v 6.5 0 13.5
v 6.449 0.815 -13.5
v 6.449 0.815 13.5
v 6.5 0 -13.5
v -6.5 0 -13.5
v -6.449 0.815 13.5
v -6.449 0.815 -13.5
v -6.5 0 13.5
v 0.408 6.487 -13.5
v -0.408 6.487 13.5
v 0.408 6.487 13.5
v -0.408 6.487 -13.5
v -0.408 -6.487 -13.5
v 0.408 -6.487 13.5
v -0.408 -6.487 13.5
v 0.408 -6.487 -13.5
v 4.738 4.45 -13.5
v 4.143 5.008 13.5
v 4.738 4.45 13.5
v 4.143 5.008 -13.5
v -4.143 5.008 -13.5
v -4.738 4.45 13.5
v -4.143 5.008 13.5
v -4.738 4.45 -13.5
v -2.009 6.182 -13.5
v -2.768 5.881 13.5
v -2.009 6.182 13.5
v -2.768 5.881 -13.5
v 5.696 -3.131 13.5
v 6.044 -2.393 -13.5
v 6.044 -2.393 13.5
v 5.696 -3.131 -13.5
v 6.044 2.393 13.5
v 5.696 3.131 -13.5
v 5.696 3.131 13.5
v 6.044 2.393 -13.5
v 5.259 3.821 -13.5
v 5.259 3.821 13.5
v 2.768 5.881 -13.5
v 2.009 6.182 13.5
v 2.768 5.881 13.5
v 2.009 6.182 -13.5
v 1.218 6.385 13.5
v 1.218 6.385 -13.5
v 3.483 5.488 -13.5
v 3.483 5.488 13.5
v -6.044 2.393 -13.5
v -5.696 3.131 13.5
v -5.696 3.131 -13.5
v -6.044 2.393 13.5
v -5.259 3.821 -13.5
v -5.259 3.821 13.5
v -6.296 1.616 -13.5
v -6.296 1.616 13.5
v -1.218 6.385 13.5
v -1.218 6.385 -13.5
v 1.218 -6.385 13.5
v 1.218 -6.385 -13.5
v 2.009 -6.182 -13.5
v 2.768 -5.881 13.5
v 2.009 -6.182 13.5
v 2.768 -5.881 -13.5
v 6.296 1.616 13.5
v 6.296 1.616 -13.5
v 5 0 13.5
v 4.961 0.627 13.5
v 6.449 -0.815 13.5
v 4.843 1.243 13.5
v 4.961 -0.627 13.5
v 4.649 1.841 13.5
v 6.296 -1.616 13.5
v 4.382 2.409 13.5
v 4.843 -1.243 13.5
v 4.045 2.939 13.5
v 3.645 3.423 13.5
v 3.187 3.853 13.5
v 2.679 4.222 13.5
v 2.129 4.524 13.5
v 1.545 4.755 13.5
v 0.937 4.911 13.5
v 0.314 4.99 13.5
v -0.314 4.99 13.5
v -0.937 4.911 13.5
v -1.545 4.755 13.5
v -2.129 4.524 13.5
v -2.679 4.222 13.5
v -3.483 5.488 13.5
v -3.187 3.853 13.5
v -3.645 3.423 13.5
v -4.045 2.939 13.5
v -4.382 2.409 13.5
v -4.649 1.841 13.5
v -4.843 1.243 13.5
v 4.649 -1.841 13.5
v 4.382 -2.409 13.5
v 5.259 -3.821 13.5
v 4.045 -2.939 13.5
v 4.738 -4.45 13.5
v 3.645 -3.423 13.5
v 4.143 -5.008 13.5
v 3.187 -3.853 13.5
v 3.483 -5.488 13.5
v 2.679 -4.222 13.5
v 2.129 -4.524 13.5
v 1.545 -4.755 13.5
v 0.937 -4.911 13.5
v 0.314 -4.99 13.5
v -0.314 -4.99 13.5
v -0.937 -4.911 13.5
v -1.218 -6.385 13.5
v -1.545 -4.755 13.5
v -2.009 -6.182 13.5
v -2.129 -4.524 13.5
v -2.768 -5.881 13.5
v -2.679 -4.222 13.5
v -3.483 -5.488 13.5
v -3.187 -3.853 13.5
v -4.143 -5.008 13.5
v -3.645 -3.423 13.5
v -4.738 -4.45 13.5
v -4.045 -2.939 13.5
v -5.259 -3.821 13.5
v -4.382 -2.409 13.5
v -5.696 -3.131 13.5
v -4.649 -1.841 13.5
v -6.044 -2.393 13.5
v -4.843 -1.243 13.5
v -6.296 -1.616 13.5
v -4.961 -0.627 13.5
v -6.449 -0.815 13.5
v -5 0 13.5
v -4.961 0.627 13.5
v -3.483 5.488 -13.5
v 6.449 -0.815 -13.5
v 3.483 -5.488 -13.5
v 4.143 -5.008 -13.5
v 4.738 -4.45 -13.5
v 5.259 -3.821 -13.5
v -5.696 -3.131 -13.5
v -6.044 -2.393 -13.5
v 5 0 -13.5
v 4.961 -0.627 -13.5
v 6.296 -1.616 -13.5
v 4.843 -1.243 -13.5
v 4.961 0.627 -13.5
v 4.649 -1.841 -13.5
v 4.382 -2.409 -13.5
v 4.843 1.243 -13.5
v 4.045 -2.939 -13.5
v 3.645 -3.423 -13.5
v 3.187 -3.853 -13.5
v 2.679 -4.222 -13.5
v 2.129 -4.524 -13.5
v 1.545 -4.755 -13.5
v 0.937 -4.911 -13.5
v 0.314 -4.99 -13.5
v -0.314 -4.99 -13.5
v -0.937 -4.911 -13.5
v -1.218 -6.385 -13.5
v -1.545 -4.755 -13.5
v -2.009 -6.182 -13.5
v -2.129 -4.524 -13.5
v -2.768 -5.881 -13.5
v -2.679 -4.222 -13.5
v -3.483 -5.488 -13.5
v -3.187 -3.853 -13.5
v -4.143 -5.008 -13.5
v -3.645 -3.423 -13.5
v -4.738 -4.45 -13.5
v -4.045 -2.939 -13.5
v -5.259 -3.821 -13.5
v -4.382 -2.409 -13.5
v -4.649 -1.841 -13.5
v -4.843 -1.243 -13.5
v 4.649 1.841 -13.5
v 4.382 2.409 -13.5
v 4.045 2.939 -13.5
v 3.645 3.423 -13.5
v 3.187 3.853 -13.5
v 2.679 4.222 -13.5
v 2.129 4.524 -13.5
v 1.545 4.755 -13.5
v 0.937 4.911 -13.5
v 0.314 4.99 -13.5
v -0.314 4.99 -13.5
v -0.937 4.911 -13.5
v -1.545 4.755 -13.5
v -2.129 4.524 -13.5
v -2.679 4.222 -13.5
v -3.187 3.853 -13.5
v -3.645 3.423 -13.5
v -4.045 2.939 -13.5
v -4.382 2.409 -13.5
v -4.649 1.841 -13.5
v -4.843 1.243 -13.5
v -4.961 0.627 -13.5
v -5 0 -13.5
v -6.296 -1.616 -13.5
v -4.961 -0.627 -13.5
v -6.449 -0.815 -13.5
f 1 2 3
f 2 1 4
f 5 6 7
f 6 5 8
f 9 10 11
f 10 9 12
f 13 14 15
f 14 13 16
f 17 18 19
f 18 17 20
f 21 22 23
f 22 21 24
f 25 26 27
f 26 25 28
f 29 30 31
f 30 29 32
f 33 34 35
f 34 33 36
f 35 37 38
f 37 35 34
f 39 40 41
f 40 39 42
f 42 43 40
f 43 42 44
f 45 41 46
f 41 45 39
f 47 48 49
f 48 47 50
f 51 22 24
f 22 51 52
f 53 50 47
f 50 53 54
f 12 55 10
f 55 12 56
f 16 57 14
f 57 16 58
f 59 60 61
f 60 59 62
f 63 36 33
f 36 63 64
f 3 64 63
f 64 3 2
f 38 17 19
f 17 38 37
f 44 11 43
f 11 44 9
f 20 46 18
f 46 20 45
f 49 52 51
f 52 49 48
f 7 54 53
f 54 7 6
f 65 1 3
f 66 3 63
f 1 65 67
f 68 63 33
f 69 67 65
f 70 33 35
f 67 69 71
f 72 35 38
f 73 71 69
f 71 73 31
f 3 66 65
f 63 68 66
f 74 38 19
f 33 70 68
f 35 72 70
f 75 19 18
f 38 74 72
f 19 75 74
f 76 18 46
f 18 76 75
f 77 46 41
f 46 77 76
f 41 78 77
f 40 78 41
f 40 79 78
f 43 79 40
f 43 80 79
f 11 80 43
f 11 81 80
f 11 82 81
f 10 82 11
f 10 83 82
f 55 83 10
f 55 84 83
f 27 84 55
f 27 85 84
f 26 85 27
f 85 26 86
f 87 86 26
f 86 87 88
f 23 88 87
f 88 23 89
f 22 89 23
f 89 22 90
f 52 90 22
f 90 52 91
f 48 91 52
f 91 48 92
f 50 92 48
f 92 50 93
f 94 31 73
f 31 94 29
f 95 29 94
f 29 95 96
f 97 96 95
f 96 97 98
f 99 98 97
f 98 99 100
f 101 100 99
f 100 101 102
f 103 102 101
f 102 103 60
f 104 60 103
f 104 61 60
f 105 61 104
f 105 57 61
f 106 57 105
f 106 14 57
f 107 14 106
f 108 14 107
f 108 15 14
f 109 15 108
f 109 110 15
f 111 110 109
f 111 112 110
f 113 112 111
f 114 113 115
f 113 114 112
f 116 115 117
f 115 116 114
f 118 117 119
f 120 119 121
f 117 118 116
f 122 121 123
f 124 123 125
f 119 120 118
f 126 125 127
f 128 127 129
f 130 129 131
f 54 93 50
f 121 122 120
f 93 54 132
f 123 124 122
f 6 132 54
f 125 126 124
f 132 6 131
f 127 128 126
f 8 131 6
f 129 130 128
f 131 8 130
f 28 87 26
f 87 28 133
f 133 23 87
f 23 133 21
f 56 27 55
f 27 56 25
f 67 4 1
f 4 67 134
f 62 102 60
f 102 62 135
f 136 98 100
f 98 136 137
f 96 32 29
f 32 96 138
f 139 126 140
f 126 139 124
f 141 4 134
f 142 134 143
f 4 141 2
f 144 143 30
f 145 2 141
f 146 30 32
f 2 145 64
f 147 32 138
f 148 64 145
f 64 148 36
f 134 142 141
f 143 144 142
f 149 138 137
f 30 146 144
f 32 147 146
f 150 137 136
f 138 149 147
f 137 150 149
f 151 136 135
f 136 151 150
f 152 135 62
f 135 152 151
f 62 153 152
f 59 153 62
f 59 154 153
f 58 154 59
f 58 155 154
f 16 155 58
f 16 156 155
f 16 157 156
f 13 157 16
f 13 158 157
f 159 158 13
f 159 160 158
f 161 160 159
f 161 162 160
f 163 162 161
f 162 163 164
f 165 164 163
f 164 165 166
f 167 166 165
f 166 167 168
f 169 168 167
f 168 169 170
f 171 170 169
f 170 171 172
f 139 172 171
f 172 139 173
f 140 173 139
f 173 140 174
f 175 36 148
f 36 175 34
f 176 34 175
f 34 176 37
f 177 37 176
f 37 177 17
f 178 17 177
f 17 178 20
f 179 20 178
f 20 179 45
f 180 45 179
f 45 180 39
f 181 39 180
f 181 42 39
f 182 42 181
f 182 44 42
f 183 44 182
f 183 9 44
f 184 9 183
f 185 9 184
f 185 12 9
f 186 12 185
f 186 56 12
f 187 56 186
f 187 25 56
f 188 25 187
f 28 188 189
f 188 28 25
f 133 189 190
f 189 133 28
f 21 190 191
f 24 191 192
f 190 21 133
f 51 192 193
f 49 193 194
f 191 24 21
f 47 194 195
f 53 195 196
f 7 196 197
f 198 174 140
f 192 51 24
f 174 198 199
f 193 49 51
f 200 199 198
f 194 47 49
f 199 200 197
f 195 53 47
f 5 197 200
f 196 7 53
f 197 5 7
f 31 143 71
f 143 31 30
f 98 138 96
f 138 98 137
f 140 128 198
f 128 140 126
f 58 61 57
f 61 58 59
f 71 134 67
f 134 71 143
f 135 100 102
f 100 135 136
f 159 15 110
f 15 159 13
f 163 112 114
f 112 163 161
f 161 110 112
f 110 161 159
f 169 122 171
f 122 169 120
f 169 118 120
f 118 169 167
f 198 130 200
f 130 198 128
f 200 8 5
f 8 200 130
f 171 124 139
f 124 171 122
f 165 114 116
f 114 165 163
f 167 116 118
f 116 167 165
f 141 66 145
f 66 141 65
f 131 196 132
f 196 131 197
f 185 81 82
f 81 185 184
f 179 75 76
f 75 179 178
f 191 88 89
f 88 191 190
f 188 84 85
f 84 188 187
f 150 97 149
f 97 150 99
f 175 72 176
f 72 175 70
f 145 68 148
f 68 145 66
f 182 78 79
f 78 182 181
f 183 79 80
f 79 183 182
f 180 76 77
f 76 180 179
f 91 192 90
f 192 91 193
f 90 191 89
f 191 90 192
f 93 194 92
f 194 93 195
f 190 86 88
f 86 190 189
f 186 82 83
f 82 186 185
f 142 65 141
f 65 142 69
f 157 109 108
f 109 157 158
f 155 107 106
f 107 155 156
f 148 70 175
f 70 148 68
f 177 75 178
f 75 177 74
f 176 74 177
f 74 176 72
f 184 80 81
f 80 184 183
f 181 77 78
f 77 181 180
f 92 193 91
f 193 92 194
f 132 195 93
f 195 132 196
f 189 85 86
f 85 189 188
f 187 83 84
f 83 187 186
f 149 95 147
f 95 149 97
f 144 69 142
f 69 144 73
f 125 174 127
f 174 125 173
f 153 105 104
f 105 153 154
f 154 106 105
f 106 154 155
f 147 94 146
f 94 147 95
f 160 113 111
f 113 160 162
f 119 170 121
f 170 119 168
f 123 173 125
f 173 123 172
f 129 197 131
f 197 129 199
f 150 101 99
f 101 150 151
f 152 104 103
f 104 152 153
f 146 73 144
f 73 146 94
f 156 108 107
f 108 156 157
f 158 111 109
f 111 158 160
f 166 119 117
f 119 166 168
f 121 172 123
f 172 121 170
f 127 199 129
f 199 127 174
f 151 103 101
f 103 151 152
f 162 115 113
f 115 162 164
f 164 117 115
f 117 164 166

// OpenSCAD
$fn = 50;


difference() {
	union() {
		translate(v = [0, 0, -13.5000000000]) {
			cylinder(h = 27, r = 6.5000000000);
		}
	}
	union() {
		translate(v = [0, 0, -100.0000000000]) {
			cylinder(h = 200, r = 5.0000000000);
		}
	}
}
